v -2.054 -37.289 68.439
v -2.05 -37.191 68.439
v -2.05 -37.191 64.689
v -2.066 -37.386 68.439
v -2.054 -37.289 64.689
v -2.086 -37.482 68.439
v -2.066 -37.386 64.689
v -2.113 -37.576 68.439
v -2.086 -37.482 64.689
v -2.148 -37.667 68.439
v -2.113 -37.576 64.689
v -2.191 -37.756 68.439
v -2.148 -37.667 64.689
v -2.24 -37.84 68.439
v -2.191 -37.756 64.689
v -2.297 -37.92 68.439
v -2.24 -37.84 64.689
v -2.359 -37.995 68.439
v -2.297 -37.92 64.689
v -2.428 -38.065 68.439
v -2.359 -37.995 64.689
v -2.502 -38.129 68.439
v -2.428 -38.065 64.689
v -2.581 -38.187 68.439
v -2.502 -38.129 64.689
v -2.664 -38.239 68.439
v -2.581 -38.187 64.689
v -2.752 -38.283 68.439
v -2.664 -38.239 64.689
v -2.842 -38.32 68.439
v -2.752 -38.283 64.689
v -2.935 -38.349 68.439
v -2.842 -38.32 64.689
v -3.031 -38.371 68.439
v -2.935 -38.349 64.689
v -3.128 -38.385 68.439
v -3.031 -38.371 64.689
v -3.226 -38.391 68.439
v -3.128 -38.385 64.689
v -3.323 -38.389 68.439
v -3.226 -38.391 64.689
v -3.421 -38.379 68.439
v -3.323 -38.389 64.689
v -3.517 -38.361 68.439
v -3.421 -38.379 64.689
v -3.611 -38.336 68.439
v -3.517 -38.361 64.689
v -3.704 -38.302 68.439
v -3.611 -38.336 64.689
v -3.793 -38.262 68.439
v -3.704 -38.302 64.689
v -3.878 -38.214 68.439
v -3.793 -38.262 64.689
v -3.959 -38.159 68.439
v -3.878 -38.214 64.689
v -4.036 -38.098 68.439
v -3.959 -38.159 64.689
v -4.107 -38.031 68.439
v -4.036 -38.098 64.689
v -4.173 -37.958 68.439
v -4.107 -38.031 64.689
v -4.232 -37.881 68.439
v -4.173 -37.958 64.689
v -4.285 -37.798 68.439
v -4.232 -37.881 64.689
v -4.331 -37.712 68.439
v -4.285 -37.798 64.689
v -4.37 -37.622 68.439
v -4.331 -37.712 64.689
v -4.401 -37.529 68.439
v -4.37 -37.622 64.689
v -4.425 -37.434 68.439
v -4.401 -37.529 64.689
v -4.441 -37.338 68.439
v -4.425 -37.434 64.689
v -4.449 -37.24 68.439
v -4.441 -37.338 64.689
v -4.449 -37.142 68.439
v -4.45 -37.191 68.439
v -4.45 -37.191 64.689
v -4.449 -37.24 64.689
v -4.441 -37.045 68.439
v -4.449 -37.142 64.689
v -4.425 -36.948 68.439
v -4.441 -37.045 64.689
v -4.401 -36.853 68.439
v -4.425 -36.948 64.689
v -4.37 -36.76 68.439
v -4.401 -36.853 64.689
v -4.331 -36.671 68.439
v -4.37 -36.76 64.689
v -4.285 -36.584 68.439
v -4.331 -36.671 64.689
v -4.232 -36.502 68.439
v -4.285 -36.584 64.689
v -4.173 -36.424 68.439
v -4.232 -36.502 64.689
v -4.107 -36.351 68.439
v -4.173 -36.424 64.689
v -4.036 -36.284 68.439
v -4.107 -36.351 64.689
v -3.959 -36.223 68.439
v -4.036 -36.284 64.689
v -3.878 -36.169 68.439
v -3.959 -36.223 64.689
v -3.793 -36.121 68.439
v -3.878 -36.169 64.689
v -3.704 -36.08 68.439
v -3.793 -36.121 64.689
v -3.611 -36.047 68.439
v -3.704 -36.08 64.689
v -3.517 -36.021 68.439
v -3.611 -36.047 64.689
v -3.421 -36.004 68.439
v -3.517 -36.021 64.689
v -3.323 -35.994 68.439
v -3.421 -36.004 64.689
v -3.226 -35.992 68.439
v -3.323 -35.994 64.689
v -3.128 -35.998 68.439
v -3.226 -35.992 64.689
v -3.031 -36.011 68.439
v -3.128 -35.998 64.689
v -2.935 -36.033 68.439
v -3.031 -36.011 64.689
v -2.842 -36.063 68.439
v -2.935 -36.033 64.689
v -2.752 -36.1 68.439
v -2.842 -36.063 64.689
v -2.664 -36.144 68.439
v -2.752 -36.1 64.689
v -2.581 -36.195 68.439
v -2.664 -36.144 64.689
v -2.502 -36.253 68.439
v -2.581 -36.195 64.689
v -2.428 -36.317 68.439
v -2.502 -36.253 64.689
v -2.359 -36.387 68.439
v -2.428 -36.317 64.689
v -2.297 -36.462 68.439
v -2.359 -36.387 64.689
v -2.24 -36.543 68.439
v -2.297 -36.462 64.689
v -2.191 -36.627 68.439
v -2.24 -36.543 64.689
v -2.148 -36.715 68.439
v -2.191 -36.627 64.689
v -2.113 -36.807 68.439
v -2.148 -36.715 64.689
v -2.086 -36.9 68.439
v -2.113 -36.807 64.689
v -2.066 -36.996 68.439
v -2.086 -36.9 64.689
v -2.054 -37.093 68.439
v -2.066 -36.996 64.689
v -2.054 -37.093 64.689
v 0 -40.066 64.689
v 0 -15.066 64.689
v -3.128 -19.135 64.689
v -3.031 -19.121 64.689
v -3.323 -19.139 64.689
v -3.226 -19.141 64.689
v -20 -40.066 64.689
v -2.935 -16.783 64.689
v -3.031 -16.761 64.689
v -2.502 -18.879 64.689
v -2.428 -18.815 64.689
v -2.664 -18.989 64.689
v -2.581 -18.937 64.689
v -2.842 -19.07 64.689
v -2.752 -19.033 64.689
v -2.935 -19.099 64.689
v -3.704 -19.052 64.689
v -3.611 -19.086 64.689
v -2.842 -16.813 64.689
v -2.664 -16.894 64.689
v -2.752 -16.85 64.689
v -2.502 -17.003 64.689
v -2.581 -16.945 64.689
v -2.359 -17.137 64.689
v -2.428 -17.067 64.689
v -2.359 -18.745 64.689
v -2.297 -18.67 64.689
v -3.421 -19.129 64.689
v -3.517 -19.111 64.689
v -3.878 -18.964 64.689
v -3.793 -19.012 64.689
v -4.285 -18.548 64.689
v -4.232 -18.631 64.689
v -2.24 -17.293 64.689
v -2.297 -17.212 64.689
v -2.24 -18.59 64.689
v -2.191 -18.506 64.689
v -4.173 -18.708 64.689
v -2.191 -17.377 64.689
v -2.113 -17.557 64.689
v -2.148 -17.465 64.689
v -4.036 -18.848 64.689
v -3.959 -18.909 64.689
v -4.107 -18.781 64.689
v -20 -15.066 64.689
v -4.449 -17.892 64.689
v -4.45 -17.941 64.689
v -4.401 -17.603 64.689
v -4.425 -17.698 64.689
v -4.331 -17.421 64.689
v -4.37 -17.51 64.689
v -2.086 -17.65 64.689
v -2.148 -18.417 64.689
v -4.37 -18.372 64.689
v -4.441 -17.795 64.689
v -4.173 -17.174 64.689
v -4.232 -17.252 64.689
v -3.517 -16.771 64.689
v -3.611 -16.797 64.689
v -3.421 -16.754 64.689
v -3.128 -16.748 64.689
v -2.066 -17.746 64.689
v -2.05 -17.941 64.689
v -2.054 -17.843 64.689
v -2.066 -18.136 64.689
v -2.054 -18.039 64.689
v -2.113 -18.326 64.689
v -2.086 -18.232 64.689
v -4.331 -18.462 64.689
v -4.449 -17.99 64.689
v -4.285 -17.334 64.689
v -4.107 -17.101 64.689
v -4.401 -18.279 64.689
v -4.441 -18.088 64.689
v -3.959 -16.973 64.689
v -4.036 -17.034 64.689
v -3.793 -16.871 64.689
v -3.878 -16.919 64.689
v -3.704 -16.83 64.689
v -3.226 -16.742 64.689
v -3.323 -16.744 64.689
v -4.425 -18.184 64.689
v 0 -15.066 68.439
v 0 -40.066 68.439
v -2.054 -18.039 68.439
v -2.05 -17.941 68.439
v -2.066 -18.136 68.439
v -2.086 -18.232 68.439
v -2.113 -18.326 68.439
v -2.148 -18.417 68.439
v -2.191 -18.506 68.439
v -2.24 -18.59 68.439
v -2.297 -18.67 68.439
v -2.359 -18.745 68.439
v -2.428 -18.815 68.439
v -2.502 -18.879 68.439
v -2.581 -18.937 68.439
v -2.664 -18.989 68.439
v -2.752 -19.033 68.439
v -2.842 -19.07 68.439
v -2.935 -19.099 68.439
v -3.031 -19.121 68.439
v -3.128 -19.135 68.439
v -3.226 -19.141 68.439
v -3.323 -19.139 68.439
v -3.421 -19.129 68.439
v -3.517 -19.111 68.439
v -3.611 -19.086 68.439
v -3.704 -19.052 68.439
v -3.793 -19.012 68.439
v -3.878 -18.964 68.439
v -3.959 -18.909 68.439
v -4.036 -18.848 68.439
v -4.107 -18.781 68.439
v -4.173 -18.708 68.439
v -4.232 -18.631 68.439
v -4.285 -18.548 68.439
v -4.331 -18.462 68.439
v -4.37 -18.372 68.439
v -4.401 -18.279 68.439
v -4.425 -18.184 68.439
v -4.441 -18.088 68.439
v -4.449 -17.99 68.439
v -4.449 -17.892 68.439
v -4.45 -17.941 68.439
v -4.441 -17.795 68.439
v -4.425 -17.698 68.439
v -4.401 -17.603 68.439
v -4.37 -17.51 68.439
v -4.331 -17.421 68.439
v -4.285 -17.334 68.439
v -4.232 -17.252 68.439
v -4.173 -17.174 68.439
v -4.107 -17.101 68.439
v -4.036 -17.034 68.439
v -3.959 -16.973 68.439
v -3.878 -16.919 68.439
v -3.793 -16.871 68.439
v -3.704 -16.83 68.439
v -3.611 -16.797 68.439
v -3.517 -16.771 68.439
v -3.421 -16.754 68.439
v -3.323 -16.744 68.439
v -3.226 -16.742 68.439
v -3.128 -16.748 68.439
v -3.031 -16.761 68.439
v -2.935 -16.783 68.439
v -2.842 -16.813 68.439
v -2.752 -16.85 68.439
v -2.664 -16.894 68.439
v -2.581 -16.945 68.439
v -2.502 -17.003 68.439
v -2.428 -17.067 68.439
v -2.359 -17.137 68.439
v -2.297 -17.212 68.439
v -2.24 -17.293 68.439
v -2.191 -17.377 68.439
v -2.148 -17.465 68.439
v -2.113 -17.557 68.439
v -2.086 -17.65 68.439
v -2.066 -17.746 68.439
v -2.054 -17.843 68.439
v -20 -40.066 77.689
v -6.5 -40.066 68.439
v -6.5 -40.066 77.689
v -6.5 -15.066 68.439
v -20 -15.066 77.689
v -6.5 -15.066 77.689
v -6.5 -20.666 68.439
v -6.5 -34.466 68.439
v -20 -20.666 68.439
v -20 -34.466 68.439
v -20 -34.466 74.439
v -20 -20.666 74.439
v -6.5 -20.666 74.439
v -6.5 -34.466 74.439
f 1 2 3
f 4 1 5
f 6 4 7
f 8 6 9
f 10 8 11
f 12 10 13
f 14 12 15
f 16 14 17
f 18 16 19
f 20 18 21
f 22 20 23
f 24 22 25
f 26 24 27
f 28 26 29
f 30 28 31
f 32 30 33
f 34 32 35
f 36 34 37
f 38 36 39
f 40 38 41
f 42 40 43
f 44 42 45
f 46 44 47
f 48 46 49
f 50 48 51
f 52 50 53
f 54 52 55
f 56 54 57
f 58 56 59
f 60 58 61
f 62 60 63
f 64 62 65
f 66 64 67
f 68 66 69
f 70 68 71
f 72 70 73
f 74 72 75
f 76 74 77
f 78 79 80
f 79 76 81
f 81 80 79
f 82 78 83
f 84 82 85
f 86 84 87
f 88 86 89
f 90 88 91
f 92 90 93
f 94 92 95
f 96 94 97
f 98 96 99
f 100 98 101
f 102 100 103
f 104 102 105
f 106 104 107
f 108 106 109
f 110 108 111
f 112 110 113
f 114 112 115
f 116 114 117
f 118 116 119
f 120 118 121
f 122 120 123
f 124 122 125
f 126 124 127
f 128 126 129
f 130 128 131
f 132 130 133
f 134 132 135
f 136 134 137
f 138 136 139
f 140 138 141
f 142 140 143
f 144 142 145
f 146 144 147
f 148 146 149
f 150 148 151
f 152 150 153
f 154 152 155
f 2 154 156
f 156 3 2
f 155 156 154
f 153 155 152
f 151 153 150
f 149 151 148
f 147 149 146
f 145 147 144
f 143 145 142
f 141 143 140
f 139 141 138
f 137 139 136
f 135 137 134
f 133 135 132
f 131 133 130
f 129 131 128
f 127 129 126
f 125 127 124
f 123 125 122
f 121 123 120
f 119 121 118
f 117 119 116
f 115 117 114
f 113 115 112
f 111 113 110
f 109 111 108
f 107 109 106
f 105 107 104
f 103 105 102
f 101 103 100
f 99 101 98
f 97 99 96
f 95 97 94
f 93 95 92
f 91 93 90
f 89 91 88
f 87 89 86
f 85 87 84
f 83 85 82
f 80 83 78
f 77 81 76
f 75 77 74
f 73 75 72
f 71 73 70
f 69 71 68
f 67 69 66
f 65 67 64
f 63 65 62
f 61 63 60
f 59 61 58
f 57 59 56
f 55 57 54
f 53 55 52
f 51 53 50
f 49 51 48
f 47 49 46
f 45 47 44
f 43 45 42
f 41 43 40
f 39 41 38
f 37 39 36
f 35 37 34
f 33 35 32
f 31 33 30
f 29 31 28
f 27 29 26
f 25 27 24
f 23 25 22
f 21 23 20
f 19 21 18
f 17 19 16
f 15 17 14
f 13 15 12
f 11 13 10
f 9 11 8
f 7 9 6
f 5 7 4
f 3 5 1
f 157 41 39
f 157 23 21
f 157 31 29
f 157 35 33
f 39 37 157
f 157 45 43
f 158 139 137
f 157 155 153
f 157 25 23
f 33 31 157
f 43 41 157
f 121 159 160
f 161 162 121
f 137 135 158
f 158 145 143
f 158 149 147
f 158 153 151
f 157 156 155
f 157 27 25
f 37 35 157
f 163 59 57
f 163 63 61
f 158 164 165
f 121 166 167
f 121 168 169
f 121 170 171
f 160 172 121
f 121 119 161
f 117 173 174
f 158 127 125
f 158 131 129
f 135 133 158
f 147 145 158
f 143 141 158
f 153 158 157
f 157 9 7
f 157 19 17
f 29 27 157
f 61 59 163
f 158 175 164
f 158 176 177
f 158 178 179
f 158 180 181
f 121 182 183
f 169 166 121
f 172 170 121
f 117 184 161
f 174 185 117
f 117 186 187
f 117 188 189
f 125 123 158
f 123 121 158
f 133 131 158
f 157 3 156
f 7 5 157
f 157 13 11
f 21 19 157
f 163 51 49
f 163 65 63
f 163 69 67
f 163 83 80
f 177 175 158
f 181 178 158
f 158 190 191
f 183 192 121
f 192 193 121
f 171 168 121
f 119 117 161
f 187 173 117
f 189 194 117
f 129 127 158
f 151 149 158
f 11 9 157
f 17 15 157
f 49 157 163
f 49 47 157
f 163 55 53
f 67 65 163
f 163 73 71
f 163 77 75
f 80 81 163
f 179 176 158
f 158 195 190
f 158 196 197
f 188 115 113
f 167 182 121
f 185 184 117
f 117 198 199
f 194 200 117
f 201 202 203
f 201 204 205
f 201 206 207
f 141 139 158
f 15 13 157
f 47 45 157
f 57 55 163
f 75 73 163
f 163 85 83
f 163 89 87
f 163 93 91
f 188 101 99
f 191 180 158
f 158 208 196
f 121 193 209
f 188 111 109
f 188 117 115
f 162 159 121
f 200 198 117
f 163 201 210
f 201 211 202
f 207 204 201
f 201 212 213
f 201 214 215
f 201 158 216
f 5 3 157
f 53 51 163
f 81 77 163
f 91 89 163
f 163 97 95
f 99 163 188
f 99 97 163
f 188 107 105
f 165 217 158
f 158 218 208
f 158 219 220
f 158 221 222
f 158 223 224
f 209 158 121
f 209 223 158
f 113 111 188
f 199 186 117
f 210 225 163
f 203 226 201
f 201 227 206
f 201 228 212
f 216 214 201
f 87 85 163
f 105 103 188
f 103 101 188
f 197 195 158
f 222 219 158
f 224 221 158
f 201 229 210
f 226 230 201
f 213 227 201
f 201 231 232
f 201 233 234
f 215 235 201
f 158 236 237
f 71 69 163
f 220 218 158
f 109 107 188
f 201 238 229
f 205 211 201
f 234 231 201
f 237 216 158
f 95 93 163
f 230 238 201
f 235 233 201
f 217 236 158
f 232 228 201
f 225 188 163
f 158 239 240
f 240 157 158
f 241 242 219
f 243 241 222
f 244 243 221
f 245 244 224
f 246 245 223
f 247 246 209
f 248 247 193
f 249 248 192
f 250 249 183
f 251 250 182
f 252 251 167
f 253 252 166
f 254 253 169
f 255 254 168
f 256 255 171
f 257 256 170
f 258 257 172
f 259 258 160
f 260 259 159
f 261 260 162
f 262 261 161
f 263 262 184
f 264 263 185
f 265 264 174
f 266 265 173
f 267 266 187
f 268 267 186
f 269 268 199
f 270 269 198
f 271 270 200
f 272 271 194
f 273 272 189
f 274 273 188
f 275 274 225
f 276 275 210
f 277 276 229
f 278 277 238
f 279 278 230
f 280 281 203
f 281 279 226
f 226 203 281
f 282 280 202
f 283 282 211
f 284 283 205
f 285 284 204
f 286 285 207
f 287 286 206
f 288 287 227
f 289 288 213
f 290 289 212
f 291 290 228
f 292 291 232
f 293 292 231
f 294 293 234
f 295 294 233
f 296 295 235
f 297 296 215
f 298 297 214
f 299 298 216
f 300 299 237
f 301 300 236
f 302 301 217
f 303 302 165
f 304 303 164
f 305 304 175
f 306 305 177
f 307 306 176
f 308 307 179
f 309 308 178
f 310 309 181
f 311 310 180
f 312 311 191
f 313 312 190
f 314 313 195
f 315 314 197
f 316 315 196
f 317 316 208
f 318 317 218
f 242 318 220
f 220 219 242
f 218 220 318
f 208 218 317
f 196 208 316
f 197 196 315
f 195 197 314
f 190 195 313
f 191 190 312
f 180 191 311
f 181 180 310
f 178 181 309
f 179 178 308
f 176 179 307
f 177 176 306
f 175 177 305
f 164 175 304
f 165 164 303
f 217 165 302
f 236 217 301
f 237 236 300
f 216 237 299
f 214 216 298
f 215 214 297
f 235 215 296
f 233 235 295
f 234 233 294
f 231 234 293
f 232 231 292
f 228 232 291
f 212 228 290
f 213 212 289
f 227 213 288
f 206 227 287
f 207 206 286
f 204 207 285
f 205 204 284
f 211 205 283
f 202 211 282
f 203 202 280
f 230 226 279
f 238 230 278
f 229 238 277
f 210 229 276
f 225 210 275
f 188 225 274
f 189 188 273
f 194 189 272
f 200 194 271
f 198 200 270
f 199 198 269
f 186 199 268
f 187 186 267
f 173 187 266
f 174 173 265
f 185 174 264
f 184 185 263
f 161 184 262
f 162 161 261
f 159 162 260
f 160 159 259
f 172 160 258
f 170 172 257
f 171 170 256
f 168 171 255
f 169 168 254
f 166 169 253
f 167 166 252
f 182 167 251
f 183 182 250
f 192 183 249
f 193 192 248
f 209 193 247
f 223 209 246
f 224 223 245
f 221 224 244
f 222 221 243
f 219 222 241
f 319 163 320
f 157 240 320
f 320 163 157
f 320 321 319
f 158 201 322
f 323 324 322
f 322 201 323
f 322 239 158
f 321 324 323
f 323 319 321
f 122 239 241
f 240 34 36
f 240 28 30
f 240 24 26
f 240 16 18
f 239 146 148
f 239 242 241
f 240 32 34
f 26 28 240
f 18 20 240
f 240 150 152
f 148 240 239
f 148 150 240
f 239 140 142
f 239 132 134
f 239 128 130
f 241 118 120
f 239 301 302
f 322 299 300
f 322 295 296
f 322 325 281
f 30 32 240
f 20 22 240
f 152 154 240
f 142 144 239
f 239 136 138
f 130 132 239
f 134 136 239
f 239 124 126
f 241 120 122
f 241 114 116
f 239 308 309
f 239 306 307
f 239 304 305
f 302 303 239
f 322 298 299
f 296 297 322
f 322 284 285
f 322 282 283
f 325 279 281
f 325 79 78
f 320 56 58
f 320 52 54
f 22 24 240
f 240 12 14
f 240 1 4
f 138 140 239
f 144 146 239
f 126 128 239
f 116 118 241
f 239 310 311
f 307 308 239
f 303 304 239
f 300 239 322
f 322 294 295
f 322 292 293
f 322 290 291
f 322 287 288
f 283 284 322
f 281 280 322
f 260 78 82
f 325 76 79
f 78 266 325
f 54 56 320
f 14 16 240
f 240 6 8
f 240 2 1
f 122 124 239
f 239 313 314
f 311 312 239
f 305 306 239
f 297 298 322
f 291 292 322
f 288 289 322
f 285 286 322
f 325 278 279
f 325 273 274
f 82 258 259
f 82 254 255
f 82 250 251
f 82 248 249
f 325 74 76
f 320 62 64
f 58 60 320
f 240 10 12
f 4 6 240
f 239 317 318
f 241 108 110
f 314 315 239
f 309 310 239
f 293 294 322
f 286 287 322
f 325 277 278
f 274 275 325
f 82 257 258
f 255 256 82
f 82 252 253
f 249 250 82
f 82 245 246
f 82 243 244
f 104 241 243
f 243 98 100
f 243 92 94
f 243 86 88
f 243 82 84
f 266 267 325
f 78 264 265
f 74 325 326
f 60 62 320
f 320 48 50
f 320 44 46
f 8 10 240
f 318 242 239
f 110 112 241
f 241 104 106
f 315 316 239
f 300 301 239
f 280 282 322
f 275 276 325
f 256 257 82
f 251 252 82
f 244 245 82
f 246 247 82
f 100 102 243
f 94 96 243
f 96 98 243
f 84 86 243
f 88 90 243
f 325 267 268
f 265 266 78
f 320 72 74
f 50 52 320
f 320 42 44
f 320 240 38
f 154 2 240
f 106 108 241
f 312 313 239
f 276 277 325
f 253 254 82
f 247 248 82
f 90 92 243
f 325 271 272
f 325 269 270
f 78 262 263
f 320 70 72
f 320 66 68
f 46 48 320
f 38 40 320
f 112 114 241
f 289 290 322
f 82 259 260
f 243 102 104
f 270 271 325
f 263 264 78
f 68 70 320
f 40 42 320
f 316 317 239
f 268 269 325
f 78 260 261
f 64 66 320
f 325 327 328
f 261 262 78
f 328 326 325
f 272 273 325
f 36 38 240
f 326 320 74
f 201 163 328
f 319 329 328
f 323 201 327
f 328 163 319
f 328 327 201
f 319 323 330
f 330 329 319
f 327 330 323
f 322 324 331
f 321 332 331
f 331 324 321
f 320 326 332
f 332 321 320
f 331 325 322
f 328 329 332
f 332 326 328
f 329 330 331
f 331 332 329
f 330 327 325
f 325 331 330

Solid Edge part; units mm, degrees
sketch "Sketch1" plane through (0, 0, 0) normal (1, 0, 0) x (0, 1, 0)
  line L0 (-34.4663, 68.439) -> (-20.6663, 68.439)
  line L1 (-20.6663, 74.439) -> (-20.6663, 68.439)
  line L2 (-20.6663, 74.439) -> (-34.4663, 74.439)
  line L3 (-34.4663, 74.439) -> (-34.4663, 68.439)
  line L4 (-15.0663, 64.689) -> (-15.0663, 77.689)
  line L5 (-15.0663, 77.689) -> (-40.0663, 77.689)
  line L6 (-40.0663, 77.689) -> (-40.0663, 64.689)
  line L7 (-40.0663, 64.689) -> (-15.0663, 64.689)
extrude "Protrusion1" add sketch "Sketch1" against normal blind 20
sketch "Sketch2" plane through (-10, -27.5663, 77.689) normal (0, 0, 1) x (1, 0, 0)
  line L0 (3.5, 12.5) -> (3.5, -12.5)
  line L1 (3.5, -12.5) -> (10, -12.5)
  line L2 (10, -12.5) -> (10, 12.5)
  line L3 (10, 12.5) -> (3.5, 12.5)
extrude "Cutout1" cut sketch "Sketch2" against normal up to vertex (9.25 mm away)
sketch "Sketch3" plane through (-10, -27.5663, 77.689) normal (0, 0, 1) x (1, 0, 0)
  circle A0 centre (6.75, -9.625) radius 1.2
  circle A1 centre (6.75, 9.625) radius 1.2
extrude "Cutout2" cut sketch "Sketch3" against normal up to next
